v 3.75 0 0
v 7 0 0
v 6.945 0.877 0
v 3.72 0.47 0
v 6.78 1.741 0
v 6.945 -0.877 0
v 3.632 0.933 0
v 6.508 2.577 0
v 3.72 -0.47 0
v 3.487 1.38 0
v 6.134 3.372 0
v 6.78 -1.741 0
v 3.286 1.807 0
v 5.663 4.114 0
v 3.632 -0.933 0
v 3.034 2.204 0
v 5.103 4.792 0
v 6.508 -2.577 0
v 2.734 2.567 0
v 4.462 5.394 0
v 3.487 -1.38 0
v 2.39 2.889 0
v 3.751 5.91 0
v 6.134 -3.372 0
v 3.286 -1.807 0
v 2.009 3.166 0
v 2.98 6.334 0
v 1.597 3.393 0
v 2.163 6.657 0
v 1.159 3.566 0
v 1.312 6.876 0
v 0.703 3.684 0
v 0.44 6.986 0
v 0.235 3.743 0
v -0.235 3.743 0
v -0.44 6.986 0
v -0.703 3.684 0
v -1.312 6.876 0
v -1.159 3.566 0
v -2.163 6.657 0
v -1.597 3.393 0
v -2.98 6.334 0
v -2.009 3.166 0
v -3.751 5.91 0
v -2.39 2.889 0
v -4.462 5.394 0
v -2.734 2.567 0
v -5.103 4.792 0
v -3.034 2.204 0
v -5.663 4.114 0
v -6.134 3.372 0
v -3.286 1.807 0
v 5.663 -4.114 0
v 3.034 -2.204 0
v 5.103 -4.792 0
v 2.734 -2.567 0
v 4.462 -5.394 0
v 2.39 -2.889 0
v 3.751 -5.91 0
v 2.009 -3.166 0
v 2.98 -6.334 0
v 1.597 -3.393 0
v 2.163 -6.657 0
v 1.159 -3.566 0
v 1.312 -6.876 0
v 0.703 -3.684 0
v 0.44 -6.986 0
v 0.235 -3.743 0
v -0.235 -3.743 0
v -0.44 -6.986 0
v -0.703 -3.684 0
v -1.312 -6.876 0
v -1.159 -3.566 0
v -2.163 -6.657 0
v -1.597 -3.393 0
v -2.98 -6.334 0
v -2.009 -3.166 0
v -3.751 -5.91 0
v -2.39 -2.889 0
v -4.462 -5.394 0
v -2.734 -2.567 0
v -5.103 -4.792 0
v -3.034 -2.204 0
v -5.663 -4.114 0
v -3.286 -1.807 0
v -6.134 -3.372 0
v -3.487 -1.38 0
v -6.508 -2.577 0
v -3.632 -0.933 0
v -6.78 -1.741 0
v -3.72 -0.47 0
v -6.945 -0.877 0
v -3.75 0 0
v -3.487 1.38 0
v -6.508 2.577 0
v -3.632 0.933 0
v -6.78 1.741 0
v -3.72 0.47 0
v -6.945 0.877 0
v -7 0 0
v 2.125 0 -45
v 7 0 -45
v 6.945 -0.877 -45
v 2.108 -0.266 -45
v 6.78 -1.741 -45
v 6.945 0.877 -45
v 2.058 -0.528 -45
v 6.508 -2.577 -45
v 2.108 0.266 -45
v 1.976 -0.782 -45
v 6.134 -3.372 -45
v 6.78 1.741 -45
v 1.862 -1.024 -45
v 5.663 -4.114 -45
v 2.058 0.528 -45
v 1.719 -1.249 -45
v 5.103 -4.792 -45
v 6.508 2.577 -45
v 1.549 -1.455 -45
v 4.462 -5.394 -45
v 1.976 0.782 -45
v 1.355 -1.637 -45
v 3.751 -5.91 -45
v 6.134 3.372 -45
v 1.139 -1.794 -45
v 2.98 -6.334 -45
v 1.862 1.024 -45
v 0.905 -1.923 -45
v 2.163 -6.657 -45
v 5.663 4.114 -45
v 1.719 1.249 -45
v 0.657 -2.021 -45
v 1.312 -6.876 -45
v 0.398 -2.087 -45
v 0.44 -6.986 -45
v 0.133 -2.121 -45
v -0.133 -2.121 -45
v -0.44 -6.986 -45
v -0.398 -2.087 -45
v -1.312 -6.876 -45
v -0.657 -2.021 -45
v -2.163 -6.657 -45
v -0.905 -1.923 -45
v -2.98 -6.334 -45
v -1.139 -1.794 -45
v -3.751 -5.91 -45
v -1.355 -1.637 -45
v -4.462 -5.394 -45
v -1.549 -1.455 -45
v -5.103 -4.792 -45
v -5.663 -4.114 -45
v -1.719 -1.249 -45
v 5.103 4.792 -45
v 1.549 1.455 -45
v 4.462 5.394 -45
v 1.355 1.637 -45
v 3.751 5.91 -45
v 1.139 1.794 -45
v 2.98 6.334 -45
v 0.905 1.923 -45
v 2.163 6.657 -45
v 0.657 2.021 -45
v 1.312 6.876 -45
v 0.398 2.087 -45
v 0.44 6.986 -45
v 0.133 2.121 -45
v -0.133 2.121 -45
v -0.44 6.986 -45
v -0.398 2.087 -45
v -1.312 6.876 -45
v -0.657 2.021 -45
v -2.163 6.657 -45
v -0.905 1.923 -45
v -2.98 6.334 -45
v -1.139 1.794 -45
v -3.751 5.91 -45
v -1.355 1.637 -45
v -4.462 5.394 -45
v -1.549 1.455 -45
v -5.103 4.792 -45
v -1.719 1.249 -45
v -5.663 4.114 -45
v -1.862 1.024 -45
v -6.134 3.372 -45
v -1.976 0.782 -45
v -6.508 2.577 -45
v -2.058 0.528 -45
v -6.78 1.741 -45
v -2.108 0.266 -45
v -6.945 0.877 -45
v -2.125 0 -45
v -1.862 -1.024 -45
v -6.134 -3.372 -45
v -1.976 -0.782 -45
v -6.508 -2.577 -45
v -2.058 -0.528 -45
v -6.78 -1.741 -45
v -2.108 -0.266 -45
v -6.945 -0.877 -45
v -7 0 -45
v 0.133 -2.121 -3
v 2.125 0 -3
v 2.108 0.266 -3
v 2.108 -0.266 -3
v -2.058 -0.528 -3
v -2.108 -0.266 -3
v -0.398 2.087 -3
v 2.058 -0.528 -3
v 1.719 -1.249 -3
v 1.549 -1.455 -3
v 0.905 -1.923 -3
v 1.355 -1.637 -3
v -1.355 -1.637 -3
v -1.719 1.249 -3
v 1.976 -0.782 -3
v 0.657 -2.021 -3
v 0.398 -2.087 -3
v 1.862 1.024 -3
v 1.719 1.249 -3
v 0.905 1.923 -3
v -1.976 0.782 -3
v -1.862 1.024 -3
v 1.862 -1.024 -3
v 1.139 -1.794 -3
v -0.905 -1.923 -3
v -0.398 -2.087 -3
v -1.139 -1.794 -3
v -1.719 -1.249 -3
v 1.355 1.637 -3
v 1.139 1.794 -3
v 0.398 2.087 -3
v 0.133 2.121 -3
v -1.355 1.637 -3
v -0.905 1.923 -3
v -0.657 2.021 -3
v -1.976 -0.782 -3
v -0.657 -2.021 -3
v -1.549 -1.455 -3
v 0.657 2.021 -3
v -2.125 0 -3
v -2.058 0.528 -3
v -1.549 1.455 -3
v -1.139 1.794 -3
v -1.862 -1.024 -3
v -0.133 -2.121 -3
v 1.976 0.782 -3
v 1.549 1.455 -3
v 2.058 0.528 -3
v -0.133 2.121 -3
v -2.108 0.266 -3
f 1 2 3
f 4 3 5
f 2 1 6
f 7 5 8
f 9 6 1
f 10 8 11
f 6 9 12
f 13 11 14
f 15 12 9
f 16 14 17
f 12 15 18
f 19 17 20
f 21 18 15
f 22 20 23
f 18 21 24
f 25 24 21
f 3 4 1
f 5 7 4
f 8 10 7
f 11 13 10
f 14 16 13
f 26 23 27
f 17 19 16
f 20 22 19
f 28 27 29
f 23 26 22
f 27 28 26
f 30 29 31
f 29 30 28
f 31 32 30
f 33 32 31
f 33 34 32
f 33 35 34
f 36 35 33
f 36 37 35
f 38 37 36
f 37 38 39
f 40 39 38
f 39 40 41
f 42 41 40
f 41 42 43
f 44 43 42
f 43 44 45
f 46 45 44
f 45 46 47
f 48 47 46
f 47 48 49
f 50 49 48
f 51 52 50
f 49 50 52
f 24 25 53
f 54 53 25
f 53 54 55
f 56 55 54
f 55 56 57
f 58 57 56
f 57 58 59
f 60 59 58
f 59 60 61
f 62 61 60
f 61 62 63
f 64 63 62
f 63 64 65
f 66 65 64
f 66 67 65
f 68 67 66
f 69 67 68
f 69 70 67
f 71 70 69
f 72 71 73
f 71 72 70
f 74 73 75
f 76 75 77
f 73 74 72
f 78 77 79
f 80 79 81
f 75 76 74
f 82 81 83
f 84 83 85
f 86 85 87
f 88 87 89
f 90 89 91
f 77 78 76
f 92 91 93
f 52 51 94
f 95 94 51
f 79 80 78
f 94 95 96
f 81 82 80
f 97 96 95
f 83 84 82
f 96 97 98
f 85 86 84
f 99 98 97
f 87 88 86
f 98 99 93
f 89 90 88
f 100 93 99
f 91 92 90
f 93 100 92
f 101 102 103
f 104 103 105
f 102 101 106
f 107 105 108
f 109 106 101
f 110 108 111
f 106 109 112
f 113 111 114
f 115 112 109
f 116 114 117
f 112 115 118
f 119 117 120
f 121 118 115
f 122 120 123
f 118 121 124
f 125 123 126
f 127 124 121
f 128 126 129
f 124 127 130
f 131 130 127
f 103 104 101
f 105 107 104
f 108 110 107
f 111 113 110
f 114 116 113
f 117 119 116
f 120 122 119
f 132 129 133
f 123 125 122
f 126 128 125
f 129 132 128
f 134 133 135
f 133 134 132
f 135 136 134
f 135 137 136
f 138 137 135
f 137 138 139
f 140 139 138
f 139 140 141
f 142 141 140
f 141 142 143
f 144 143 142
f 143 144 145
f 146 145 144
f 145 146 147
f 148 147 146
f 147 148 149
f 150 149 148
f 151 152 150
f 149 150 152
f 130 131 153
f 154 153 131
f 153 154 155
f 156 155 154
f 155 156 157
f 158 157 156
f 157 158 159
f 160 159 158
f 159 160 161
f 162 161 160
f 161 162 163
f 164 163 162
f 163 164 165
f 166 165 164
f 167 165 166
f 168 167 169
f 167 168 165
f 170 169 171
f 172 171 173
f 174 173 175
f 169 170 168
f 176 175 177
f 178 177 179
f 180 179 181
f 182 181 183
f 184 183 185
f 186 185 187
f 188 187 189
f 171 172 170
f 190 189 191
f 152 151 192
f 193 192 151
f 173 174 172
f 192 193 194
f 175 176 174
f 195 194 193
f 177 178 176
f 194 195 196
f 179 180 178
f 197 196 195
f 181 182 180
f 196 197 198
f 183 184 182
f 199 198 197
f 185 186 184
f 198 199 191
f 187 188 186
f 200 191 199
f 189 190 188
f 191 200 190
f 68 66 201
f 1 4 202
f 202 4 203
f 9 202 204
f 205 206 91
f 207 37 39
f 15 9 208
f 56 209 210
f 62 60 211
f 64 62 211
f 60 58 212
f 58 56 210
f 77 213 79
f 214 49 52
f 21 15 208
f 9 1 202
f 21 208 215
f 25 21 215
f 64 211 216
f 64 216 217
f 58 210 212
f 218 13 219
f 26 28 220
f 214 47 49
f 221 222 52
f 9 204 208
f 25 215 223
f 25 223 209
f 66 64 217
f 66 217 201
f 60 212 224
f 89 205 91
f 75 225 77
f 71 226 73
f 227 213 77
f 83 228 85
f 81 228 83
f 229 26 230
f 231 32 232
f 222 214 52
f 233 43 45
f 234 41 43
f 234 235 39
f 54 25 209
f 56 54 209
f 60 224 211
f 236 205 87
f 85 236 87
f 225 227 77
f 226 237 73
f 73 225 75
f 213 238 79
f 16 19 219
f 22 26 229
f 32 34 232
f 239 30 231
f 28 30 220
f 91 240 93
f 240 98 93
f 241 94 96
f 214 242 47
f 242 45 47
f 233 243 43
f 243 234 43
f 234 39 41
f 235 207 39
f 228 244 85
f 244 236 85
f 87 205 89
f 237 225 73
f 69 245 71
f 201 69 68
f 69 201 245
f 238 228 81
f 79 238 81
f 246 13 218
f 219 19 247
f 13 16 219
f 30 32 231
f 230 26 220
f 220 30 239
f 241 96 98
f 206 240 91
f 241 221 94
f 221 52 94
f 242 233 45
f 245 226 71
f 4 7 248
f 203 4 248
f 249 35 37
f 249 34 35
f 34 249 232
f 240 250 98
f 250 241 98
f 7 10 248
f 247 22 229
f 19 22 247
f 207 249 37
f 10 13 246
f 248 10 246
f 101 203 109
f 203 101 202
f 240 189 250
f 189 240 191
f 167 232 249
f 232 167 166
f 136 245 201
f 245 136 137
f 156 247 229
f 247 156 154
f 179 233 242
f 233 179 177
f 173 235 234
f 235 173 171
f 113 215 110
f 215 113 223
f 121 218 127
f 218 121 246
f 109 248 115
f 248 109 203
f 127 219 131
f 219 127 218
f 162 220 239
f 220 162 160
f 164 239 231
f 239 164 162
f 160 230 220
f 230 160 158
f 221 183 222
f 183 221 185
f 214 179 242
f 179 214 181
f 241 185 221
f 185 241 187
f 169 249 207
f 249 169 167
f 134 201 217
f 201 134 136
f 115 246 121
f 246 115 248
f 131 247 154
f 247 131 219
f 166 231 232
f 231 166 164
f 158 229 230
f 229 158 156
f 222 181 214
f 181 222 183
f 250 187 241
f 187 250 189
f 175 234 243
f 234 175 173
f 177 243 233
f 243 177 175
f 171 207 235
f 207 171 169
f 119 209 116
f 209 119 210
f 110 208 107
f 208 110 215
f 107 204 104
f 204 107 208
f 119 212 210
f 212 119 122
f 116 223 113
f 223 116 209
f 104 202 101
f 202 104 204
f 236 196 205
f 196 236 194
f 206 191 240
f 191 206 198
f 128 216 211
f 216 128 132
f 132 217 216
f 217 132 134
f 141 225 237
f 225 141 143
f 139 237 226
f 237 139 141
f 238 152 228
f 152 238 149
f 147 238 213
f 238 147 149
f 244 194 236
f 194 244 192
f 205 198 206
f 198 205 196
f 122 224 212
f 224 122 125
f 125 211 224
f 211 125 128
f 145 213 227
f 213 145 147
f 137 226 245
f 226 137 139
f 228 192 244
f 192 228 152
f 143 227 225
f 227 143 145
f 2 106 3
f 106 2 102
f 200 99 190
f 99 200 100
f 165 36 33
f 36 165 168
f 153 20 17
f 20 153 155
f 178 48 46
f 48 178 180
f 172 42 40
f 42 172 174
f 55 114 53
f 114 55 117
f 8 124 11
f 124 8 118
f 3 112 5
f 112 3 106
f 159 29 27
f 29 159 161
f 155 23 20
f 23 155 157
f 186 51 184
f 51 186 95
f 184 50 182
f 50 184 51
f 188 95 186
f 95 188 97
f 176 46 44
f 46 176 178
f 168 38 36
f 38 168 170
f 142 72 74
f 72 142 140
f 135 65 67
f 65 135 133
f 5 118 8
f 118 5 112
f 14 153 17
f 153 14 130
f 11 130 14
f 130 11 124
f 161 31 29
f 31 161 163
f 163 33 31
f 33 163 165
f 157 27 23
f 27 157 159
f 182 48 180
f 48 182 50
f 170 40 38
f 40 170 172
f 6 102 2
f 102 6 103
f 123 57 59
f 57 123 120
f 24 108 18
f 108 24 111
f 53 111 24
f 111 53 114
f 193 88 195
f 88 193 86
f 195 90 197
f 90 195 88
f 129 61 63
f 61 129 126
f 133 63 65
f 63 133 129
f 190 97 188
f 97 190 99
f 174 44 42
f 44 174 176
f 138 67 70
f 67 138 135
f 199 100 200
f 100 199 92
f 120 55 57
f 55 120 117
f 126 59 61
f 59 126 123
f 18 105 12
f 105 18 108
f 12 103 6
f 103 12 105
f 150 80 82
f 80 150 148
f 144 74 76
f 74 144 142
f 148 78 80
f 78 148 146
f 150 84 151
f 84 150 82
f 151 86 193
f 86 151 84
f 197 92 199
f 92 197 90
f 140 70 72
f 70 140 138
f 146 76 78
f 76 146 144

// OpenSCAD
$fn = 50;


difference() {
	union() {
		translate(v = [0, 0, -45.0000000000]) {
			cylinder(h = 45, r = 7.0000000000);
		}
		cylinder(h = 0, r = 10.0000000000);
	}
	union() {
		translate(v = [0, 0, 0]) {
			rotate(a = [0, 0, 0]) {
				difference() {
					union() {
						#translate(v = [0, 0, -45.0000000000]) {
							cylinder(h = 45, r = 2.0000000000);
						}
						#translate(v = [0, 0, -3]) {
							cylinder(h = 3, r = 7.0000000000, r1 = 2.1250000000, r2 = 3.7500000000);
						}
						#translate(v = [0, 0, -45.0000000000]) {
							cylinder(h = 45, r = 2.1250000000);
						}
						#translate(v = [0, 0, -45.0000000000]) {
							cylinder(h = 45, r = 2.0000000000);
						}
					}
					union();
				}
			}
		}
	}
}
